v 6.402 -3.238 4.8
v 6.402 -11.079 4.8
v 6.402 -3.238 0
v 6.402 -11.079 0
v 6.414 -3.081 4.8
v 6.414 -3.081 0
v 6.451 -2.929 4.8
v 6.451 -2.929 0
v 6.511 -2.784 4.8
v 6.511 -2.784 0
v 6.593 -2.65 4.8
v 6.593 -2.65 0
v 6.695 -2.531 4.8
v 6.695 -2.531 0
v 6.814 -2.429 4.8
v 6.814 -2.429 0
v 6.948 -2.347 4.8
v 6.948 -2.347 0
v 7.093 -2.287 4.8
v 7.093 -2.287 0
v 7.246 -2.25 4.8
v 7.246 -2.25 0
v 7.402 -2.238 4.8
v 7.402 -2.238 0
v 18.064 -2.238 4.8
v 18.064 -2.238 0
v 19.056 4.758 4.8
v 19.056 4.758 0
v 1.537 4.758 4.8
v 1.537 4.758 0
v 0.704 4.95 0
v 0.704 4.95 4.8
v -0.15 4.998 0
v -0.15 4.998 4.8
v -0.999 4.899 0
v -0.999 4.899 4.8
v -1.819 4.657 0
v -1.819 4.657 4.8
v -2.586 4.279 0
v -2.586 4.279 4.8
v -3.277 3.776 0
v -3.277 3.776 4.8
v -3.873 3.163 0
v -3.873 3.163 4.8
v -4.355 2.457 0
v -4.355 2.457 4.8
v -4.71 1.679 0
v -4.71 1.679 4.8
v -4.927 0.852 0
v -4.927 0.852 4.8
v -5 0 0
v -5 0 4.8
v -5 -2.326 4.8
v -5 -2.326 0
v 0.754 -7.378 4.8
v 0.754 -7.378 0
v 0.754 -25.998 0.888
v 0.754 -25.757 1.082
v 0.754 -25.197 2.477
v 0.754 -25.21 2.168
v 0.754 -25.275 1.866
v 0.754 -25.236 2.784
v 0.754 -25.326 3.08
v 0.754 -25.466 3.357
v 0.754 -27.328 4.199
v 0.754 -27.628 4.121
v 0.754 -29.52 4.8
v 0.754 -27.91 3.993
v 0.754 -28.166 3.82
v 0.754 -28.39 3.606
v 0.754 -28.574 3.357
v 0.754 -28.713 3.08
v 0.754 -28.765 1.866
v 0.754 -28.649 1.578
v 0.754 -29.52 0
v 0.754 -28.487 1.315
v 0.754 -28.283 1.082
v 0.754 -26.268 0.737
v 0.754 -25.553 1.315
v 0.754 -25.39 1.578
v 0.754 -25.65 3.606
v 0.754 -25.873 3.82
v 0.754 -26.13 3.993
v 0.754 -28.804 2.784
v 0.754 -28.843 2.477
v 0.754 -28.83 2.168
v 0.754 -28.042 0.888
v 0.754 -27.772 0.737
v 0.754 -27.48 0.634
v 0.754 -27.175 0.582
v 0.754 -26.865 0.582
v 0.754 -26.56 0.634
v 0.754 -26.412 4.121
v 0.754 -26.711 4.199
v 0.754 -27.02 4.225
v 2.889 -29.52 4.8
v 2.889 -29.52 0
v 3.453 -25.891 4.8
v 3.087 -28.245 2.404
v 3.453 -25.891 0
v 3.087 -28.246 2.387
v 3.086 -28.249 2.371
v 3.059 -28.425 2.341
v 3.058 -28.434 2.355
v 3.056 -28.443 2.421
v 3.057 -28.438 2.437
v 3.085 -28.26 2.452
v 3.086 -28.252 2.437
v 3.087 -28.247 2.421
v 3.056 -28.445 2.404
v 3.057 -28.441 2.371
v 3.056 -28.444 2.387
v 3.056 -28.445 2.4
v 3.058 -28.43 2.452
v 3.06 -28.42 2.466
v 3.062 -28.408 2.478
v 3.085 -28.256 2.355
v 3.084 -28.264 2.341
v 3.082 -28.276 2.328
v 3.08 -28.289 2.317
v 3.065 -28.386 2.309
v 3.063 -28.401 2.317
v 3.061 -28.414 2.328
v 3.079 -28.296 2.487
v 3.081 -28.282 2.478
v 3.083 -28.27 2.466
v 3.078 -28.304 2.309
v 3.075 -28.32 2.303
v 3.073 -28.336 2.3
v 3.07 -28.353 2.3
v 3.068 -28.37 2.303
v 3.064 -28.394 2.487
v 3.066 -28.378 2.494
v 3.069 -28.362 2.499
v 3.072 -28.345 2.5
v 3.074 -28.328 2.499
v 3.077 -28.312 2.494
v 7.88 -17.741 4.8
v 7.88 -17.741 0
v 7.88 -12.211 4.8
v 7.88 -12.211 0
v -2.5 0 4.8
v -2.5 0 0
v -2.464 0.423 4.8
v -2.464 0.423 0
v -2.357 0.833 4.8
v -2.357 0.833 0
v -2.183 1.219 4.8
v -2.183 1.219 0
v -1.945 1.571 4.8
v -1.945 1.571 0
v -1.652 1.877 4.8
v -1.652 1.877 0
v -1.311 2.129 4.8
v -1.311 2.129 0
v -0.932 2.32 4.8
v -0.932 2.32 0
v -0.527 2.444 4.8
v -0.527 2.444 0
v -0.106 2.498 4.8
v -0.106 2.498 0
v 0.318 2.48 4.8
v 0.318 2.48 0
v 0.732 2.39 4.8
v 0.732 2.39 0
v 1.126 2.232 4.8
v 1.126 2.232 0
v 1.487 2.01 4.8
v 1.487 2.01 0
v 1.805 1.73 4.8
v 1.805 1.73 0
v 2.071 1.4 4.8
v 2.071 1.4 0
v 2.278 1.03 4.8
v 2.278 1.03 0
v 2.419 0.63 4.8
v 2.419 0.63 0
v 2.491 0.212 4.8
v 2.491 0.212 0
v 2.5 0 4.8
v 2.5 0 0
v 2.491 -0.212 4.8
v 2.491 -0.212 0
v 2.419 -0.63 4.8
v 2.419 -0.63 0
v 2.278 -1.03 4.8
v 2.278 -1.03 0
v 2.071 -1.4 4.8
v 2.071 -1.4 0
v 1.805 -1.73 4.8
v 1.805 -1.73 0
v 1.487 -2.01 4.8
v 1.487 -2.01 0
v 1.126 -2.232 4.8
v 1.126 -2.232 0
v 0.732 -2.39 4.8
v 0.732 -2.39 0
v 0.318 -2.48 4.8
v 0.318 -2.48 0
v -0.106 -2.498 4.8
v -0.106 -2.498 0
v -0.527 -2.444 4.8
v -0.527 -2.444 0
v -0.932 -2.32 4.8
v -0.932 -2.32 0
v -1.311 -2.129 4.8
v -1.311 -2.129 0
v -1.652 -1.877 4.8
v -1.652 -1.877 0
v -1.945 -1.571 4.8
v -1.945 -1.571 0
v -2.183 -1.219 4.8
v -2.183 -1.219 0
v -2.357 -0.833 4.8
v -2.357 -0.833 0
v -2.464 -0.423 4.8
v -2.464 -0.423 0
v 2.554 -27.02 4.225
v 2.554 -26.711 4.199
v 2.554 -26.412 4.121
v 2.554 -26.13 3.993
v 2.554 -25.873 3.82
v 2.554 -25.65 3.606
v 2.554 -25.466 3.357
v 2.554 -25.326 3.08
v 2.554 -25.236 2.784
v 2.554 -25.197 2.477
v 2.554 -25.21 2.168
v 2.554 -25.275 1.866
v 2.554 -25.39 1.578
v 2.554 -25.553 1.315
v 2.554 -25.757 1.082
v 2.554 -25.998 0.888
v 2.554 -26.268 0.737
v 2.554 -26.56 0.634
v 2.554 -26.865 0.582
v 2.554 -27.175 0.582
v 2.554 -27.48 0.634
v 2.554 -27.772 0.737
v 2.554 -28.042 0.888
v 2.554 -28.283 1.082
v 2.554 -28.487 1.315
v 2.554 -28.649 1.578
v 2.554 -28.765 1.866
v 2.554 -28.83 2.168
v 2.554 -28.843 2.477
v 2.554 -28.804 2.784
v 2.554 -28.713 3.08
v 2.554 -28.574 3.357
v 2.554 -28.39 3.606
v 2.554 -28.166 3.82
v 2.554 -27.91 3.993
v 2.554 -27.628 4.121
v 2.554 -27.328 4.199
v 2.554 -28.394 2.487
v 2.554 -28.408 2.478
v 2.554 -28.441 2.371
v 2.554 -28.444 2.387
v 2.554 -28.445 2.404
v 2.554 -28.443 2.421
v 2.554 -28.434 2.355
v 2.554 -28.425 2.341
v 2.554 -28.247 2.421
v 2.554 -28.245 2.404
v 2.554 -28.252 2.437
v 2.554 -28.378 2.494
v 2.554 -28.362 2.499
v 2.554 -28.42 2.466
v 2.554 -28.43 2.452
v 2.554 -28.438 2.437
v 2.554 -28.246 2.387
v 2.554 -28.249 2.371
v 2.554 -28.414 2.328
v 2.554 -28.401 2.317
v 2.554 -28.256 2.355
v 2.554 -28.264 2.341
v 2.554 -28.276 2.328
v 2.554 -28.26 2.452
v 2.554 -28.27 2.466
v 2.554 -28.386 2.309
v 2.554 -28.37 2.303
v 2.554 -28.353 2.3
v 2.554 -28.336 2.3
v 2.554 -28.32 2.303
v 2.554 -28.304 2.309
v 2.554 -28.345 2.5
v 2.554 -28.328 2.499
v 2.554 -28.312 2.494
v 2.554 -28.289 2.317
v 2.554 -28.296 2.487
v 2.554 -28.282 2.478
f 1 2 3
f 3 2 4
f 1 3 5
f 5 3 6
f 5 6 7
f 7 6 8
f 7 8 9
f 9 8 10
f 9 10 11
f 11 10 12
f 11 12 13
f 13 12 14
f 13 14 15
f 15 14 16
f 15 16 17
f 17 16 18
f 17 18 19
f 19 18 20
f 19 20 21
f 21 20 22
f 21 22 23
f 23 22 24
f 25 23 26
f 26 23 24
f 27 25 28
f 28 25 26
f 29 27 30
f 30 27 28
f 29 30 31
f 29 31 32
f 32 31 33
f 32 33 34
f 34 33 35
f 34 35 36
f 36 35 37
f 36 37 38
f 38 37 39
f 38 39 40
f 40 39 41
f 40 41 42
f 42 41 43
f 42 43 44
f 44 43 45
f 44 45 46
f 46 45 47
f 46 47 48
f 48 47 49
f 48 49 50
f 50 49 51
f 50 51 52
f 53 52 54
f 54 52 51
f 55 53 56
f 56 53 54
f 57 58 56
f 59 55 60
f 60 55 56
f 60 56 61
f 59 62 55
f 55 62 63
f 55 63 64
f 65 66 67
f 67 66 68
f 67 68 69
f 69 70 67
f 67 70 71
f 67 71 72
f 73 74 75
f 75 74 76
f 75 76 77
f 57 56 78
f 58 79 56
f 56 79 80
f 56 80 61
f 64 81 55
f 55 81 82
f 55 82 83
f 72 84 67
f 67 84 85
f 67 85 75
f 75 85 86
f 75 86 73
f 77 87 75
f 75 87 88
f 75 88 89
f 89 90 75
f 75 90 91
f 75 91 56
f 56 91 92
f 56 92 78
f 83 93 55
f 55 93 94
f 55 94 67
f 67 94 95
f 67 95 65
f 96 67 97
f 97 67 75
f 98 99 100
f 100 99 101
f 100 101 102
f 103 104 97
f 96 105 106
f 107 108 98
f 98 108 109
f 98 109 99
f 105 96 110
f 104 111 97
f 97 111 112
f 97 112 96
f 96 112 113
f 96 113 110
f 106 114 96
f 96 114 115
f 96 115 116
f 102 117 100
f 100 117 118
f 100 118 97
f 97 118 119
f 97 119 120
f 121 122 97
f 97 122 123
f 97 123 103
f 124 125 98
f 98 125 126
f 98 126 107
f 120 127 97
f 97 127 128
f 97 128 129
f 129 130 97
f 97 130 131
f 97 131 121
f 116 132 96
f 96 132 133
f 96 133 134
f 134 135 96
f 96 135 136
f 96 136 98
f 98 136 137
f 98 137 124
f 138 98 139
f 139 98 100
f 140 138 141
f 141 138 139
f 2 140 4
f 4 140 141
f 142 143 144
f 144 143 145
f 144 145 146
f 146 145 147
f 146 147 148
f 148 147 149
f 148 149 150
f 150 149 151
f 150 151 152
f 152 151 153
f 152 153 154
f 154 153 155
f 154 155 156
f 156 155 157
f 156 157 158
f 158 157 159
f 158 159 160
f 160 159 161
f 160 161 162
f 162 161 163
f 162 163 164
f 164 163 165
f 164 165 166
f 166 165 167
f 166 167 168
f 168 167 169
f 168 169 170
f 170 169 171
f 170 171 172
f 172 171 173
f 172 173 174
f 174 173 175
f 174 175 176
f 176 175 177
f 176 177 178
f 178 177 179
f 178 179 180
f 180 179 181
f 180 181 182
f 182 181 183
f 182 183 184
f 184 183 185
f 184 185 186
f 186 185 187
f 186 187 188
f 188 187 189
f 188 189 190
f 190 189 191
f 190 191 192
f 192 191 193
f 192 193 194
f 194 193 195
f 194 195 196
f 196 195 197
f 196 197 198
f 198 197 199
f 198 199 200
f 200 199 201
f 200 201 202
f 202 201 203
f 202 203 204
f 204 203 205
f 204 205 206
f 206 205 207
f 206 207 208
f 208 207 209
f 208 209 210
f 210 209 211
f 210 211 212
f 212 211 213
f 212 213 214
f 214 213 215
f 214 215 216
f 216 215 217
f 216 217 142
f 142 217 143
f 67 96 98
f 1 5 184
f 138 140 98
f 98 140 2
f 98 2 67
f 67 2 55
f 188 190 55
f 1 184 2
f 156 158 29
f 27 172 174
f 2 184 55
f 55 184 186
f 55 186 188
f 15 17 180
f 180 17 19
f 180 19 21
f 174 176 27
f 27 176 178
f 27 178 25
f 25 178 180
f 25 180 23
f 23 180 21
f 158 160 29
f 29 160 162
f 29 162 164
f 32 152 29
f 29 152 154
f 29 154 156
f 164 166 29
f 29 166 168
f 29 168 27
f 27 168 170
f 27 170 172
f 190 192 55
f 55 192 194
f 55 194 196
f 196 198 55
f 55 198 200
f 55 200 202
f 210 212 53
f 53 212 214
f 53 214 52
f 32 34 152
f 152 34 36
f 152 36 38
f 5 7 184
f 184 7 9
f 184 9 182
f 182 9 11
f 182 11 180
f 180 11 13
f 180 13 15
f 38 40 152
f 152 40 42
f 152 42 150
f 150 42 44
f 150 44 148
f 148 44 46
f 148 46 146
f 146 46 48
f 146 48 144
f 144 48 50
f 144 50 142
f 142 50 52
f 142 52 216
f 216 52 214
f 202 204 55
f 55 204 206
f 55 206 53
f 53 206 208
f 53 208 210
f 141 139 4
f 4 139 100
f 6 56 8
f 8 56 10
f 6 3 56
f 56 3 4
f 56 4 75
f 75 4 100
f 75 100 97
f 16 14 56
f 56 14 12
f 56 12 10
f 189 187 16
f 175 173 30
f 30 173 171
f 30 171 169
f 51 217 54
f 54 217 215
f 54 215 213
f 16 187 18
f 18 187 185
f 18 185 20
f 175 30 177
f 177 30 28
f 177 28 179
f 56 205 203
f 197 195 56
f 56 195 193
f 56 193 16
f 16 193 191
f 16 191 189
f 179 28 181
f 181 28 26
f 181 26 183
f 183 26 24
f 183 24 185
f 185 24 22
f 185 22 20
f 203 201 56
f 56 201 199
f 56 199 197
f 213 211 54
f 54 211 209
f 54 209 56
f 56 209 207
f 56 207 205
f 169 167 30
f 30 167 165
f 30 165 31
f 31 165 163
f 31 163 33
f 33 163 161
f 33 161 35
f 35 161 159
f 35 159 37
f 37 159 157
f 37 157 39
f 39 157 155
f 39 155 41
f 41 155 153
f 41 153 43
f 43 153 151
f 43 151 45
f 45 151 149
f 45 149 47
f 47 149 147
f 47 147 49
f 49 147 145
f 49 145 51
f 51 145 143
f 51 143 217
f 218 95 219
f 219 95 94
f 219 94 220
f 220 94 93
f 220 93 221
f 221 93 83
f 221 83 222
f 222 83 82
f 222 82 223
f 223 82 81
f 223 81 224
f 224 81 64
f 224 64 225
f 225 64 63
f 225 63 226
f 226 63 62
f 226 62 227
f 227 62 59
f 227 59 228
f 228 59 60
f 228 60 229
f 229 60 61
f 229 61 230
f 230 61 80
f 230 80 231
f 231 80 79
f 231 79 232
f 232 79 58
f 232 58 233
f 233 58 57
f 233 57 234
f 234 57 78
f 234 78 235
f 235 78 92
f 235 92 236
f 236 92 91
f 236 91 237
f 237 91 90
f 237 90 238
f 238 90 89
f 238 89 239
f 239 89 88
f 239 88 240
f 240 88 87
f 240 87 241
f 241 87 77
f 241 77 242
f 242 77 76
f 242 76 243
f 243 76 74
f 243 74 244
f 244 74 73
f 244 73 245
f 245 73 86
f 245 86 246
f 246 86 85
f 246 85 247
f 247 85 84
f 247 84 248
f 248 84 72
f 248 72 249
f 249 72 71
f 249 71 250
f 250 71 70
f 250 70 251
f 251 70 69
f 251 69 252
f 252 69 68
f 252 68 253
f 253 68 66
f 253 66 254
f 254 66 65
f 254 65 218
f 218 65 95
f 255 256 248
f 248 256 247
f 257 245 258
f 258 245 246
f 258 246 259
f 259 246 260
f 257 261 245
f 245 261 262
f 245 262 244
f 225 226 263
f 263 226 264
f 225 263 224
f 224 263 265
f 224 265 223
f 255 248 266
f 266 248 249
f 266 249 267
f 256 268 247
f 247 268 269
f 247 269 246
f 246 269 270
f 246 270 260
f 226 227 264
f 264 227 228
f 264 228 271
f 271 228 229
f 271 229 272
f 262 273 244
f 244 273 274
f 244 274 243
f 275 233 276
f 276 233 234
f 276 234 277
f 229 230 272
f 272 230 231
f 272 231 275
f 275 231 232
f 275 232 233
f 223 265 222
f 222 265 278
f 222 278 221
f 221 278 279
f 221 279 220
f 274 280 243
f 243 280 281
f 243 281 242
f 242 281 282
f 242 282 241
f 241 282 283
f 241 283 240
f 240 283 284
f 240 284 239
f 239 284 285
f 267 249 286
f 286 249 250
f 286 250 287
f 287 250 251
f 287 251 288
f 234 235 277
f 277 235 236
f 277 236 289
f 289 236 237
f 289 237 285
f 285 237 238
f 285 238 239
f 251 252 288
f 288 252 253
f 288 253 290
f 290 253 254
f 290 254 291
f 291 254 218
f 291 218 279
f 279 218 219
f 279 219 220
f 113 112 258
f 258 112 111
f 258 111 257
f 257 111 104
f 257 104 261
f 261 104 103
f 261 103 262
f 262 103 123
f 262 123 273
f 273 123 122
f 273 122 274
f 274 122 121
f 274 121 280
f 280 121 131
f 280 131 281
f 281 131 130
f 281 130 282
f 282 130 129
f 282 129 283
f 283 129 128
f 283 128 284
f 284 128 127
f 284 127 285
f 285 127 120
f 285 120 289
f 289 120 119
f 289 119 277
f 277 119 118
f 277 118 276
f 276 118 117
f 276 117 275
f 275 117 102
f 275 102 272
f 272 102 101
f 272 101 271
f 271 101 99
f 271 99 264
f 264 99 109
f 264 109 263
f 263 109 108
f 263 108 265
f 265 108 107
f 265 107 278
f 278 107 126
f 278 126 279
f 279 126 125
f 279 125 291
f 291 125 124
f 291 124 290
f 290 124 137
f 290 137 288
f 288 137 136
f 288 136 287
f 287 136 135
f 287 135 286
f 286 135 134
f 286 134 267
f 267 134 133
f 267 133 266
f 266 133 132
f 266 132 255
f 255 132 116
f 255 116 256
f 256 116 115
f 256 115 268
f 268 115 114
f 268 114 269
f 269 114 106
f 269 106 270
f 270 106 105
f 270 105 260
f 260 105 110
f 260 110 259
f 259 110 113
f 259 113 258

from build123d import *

# Parameters (mm, degrees)
SKETCH_1_R          = 5
SKETCH_1_R_2        = 2.5
EXTRUDE_1_DEPTH     = 4.8
SKETCH_3_R          = 1.825
CUT_EXTRUDE_1_DEPTH = 1.8
CUT_EXTRUDE_2_REACH = 36.158
SKETCH_4_R          = 0.1


with BuildPart() as part:
    # 스케치1 → 보스-돌출1 (new body)
    # profile 1 of 2: a face of its own
    with BuildSketch(Plane.XY):
        with BuildLine():
            ThreePointArc((5, 0), (0, -5), (-5, 0))
            Line((-5, 0), (-5, -2.326474397))
            Line((-5, -2.326474397), (0.754164722, -7.377840375))
            Line((0.754164722, -7.377840375), (0.754164722, -29.519890116))
            Line((0.754164722, -29.519890116), (2.889052882, -29.519890116))
            Line((2.889052882, -29.519890116), (3.452626944, -25.890848407))
            Line((3.452626944, -25.890848407), (7.880357437, -17.740939791))
            Line((7.880357437, -17.740939791), (7.880357437, -12.211059606))
            Line((7.880357437, -12.211059606), (6.40208237, -11.079255258))
            Line((6.40208237, -11.079255258), (6.40208237, -3.237610212))
            ThreePointArc((6.40208237, -3.237610212), (6.694975589, -2.530503431), (7.40208237, -2.237610212))
            Line((7.40208237, -2.237610212), (18.063612226, -2.237610212))
            Line((18.063612226, -2.237610212), (19.056002599, 4.757997197))
            Line((19.056002599, 4.757997197), (1.536705134, 4.757997197))
            ThreePointArc((1.536705134, 4.757997197), (4.04249463, 2.942488261), (5, 0))
        make_face()
    # profile 2 of 2: a face of its own
    with BuildSketch(Plane.XY):
        Circle(SKETCH_1_R)
        Circle(SKETCH_1_R_2, mode=Mode.SUBTRACT)
    extrude(amount=EXTRUDE_1_DEPTH)

    # 스케치3 → 컷-돌출1 (cut)
    with BuildSketch(Plane.ZY.offset(-0.754164722)):
        with Locations((2.4, -27.019890116)):
            Circle(SKETCH_3_R)
    extrude(amount=-CUT_EXTRUDE_1_DEPTH, mode=Mode.SUBTRACT)

    # 컷-돌출2: up to this plane
    cut_extrude_2_end = Plane(origin=(7.297372122, -1.133249487, 4.8), z_dir=(-0.9881554576984991, 0.15345615471746255, 0))
    # 스케치4 → 컷-돌출2 (cut, up to the surface)
    with BuildSketch(Plane.ZY.offset(-2.554164722), mode=Mode.PRIVATE) as cut_extrude_2_sk1:
        with Locations((2.4, -28.344890116)):
            Circle(SKETCH_4_R)
    cut_extrude_2_tool1 = split(extrude(cut_extrude_2_sk1.sketch, amount=-CUT_EXTRUDE_2_REACH, mode=Mode.PRIVATE), bisect_by=cut_extrude_2_end, keep=Keep.BOTH, mode=Mode.PRIVATE)
    add(cut_extrude_2_tool1.solids().sort_by_distance((2.554165, -28.34489, 2.4))[0], mode=Mode.SUBTRACT)


solid = part.part
